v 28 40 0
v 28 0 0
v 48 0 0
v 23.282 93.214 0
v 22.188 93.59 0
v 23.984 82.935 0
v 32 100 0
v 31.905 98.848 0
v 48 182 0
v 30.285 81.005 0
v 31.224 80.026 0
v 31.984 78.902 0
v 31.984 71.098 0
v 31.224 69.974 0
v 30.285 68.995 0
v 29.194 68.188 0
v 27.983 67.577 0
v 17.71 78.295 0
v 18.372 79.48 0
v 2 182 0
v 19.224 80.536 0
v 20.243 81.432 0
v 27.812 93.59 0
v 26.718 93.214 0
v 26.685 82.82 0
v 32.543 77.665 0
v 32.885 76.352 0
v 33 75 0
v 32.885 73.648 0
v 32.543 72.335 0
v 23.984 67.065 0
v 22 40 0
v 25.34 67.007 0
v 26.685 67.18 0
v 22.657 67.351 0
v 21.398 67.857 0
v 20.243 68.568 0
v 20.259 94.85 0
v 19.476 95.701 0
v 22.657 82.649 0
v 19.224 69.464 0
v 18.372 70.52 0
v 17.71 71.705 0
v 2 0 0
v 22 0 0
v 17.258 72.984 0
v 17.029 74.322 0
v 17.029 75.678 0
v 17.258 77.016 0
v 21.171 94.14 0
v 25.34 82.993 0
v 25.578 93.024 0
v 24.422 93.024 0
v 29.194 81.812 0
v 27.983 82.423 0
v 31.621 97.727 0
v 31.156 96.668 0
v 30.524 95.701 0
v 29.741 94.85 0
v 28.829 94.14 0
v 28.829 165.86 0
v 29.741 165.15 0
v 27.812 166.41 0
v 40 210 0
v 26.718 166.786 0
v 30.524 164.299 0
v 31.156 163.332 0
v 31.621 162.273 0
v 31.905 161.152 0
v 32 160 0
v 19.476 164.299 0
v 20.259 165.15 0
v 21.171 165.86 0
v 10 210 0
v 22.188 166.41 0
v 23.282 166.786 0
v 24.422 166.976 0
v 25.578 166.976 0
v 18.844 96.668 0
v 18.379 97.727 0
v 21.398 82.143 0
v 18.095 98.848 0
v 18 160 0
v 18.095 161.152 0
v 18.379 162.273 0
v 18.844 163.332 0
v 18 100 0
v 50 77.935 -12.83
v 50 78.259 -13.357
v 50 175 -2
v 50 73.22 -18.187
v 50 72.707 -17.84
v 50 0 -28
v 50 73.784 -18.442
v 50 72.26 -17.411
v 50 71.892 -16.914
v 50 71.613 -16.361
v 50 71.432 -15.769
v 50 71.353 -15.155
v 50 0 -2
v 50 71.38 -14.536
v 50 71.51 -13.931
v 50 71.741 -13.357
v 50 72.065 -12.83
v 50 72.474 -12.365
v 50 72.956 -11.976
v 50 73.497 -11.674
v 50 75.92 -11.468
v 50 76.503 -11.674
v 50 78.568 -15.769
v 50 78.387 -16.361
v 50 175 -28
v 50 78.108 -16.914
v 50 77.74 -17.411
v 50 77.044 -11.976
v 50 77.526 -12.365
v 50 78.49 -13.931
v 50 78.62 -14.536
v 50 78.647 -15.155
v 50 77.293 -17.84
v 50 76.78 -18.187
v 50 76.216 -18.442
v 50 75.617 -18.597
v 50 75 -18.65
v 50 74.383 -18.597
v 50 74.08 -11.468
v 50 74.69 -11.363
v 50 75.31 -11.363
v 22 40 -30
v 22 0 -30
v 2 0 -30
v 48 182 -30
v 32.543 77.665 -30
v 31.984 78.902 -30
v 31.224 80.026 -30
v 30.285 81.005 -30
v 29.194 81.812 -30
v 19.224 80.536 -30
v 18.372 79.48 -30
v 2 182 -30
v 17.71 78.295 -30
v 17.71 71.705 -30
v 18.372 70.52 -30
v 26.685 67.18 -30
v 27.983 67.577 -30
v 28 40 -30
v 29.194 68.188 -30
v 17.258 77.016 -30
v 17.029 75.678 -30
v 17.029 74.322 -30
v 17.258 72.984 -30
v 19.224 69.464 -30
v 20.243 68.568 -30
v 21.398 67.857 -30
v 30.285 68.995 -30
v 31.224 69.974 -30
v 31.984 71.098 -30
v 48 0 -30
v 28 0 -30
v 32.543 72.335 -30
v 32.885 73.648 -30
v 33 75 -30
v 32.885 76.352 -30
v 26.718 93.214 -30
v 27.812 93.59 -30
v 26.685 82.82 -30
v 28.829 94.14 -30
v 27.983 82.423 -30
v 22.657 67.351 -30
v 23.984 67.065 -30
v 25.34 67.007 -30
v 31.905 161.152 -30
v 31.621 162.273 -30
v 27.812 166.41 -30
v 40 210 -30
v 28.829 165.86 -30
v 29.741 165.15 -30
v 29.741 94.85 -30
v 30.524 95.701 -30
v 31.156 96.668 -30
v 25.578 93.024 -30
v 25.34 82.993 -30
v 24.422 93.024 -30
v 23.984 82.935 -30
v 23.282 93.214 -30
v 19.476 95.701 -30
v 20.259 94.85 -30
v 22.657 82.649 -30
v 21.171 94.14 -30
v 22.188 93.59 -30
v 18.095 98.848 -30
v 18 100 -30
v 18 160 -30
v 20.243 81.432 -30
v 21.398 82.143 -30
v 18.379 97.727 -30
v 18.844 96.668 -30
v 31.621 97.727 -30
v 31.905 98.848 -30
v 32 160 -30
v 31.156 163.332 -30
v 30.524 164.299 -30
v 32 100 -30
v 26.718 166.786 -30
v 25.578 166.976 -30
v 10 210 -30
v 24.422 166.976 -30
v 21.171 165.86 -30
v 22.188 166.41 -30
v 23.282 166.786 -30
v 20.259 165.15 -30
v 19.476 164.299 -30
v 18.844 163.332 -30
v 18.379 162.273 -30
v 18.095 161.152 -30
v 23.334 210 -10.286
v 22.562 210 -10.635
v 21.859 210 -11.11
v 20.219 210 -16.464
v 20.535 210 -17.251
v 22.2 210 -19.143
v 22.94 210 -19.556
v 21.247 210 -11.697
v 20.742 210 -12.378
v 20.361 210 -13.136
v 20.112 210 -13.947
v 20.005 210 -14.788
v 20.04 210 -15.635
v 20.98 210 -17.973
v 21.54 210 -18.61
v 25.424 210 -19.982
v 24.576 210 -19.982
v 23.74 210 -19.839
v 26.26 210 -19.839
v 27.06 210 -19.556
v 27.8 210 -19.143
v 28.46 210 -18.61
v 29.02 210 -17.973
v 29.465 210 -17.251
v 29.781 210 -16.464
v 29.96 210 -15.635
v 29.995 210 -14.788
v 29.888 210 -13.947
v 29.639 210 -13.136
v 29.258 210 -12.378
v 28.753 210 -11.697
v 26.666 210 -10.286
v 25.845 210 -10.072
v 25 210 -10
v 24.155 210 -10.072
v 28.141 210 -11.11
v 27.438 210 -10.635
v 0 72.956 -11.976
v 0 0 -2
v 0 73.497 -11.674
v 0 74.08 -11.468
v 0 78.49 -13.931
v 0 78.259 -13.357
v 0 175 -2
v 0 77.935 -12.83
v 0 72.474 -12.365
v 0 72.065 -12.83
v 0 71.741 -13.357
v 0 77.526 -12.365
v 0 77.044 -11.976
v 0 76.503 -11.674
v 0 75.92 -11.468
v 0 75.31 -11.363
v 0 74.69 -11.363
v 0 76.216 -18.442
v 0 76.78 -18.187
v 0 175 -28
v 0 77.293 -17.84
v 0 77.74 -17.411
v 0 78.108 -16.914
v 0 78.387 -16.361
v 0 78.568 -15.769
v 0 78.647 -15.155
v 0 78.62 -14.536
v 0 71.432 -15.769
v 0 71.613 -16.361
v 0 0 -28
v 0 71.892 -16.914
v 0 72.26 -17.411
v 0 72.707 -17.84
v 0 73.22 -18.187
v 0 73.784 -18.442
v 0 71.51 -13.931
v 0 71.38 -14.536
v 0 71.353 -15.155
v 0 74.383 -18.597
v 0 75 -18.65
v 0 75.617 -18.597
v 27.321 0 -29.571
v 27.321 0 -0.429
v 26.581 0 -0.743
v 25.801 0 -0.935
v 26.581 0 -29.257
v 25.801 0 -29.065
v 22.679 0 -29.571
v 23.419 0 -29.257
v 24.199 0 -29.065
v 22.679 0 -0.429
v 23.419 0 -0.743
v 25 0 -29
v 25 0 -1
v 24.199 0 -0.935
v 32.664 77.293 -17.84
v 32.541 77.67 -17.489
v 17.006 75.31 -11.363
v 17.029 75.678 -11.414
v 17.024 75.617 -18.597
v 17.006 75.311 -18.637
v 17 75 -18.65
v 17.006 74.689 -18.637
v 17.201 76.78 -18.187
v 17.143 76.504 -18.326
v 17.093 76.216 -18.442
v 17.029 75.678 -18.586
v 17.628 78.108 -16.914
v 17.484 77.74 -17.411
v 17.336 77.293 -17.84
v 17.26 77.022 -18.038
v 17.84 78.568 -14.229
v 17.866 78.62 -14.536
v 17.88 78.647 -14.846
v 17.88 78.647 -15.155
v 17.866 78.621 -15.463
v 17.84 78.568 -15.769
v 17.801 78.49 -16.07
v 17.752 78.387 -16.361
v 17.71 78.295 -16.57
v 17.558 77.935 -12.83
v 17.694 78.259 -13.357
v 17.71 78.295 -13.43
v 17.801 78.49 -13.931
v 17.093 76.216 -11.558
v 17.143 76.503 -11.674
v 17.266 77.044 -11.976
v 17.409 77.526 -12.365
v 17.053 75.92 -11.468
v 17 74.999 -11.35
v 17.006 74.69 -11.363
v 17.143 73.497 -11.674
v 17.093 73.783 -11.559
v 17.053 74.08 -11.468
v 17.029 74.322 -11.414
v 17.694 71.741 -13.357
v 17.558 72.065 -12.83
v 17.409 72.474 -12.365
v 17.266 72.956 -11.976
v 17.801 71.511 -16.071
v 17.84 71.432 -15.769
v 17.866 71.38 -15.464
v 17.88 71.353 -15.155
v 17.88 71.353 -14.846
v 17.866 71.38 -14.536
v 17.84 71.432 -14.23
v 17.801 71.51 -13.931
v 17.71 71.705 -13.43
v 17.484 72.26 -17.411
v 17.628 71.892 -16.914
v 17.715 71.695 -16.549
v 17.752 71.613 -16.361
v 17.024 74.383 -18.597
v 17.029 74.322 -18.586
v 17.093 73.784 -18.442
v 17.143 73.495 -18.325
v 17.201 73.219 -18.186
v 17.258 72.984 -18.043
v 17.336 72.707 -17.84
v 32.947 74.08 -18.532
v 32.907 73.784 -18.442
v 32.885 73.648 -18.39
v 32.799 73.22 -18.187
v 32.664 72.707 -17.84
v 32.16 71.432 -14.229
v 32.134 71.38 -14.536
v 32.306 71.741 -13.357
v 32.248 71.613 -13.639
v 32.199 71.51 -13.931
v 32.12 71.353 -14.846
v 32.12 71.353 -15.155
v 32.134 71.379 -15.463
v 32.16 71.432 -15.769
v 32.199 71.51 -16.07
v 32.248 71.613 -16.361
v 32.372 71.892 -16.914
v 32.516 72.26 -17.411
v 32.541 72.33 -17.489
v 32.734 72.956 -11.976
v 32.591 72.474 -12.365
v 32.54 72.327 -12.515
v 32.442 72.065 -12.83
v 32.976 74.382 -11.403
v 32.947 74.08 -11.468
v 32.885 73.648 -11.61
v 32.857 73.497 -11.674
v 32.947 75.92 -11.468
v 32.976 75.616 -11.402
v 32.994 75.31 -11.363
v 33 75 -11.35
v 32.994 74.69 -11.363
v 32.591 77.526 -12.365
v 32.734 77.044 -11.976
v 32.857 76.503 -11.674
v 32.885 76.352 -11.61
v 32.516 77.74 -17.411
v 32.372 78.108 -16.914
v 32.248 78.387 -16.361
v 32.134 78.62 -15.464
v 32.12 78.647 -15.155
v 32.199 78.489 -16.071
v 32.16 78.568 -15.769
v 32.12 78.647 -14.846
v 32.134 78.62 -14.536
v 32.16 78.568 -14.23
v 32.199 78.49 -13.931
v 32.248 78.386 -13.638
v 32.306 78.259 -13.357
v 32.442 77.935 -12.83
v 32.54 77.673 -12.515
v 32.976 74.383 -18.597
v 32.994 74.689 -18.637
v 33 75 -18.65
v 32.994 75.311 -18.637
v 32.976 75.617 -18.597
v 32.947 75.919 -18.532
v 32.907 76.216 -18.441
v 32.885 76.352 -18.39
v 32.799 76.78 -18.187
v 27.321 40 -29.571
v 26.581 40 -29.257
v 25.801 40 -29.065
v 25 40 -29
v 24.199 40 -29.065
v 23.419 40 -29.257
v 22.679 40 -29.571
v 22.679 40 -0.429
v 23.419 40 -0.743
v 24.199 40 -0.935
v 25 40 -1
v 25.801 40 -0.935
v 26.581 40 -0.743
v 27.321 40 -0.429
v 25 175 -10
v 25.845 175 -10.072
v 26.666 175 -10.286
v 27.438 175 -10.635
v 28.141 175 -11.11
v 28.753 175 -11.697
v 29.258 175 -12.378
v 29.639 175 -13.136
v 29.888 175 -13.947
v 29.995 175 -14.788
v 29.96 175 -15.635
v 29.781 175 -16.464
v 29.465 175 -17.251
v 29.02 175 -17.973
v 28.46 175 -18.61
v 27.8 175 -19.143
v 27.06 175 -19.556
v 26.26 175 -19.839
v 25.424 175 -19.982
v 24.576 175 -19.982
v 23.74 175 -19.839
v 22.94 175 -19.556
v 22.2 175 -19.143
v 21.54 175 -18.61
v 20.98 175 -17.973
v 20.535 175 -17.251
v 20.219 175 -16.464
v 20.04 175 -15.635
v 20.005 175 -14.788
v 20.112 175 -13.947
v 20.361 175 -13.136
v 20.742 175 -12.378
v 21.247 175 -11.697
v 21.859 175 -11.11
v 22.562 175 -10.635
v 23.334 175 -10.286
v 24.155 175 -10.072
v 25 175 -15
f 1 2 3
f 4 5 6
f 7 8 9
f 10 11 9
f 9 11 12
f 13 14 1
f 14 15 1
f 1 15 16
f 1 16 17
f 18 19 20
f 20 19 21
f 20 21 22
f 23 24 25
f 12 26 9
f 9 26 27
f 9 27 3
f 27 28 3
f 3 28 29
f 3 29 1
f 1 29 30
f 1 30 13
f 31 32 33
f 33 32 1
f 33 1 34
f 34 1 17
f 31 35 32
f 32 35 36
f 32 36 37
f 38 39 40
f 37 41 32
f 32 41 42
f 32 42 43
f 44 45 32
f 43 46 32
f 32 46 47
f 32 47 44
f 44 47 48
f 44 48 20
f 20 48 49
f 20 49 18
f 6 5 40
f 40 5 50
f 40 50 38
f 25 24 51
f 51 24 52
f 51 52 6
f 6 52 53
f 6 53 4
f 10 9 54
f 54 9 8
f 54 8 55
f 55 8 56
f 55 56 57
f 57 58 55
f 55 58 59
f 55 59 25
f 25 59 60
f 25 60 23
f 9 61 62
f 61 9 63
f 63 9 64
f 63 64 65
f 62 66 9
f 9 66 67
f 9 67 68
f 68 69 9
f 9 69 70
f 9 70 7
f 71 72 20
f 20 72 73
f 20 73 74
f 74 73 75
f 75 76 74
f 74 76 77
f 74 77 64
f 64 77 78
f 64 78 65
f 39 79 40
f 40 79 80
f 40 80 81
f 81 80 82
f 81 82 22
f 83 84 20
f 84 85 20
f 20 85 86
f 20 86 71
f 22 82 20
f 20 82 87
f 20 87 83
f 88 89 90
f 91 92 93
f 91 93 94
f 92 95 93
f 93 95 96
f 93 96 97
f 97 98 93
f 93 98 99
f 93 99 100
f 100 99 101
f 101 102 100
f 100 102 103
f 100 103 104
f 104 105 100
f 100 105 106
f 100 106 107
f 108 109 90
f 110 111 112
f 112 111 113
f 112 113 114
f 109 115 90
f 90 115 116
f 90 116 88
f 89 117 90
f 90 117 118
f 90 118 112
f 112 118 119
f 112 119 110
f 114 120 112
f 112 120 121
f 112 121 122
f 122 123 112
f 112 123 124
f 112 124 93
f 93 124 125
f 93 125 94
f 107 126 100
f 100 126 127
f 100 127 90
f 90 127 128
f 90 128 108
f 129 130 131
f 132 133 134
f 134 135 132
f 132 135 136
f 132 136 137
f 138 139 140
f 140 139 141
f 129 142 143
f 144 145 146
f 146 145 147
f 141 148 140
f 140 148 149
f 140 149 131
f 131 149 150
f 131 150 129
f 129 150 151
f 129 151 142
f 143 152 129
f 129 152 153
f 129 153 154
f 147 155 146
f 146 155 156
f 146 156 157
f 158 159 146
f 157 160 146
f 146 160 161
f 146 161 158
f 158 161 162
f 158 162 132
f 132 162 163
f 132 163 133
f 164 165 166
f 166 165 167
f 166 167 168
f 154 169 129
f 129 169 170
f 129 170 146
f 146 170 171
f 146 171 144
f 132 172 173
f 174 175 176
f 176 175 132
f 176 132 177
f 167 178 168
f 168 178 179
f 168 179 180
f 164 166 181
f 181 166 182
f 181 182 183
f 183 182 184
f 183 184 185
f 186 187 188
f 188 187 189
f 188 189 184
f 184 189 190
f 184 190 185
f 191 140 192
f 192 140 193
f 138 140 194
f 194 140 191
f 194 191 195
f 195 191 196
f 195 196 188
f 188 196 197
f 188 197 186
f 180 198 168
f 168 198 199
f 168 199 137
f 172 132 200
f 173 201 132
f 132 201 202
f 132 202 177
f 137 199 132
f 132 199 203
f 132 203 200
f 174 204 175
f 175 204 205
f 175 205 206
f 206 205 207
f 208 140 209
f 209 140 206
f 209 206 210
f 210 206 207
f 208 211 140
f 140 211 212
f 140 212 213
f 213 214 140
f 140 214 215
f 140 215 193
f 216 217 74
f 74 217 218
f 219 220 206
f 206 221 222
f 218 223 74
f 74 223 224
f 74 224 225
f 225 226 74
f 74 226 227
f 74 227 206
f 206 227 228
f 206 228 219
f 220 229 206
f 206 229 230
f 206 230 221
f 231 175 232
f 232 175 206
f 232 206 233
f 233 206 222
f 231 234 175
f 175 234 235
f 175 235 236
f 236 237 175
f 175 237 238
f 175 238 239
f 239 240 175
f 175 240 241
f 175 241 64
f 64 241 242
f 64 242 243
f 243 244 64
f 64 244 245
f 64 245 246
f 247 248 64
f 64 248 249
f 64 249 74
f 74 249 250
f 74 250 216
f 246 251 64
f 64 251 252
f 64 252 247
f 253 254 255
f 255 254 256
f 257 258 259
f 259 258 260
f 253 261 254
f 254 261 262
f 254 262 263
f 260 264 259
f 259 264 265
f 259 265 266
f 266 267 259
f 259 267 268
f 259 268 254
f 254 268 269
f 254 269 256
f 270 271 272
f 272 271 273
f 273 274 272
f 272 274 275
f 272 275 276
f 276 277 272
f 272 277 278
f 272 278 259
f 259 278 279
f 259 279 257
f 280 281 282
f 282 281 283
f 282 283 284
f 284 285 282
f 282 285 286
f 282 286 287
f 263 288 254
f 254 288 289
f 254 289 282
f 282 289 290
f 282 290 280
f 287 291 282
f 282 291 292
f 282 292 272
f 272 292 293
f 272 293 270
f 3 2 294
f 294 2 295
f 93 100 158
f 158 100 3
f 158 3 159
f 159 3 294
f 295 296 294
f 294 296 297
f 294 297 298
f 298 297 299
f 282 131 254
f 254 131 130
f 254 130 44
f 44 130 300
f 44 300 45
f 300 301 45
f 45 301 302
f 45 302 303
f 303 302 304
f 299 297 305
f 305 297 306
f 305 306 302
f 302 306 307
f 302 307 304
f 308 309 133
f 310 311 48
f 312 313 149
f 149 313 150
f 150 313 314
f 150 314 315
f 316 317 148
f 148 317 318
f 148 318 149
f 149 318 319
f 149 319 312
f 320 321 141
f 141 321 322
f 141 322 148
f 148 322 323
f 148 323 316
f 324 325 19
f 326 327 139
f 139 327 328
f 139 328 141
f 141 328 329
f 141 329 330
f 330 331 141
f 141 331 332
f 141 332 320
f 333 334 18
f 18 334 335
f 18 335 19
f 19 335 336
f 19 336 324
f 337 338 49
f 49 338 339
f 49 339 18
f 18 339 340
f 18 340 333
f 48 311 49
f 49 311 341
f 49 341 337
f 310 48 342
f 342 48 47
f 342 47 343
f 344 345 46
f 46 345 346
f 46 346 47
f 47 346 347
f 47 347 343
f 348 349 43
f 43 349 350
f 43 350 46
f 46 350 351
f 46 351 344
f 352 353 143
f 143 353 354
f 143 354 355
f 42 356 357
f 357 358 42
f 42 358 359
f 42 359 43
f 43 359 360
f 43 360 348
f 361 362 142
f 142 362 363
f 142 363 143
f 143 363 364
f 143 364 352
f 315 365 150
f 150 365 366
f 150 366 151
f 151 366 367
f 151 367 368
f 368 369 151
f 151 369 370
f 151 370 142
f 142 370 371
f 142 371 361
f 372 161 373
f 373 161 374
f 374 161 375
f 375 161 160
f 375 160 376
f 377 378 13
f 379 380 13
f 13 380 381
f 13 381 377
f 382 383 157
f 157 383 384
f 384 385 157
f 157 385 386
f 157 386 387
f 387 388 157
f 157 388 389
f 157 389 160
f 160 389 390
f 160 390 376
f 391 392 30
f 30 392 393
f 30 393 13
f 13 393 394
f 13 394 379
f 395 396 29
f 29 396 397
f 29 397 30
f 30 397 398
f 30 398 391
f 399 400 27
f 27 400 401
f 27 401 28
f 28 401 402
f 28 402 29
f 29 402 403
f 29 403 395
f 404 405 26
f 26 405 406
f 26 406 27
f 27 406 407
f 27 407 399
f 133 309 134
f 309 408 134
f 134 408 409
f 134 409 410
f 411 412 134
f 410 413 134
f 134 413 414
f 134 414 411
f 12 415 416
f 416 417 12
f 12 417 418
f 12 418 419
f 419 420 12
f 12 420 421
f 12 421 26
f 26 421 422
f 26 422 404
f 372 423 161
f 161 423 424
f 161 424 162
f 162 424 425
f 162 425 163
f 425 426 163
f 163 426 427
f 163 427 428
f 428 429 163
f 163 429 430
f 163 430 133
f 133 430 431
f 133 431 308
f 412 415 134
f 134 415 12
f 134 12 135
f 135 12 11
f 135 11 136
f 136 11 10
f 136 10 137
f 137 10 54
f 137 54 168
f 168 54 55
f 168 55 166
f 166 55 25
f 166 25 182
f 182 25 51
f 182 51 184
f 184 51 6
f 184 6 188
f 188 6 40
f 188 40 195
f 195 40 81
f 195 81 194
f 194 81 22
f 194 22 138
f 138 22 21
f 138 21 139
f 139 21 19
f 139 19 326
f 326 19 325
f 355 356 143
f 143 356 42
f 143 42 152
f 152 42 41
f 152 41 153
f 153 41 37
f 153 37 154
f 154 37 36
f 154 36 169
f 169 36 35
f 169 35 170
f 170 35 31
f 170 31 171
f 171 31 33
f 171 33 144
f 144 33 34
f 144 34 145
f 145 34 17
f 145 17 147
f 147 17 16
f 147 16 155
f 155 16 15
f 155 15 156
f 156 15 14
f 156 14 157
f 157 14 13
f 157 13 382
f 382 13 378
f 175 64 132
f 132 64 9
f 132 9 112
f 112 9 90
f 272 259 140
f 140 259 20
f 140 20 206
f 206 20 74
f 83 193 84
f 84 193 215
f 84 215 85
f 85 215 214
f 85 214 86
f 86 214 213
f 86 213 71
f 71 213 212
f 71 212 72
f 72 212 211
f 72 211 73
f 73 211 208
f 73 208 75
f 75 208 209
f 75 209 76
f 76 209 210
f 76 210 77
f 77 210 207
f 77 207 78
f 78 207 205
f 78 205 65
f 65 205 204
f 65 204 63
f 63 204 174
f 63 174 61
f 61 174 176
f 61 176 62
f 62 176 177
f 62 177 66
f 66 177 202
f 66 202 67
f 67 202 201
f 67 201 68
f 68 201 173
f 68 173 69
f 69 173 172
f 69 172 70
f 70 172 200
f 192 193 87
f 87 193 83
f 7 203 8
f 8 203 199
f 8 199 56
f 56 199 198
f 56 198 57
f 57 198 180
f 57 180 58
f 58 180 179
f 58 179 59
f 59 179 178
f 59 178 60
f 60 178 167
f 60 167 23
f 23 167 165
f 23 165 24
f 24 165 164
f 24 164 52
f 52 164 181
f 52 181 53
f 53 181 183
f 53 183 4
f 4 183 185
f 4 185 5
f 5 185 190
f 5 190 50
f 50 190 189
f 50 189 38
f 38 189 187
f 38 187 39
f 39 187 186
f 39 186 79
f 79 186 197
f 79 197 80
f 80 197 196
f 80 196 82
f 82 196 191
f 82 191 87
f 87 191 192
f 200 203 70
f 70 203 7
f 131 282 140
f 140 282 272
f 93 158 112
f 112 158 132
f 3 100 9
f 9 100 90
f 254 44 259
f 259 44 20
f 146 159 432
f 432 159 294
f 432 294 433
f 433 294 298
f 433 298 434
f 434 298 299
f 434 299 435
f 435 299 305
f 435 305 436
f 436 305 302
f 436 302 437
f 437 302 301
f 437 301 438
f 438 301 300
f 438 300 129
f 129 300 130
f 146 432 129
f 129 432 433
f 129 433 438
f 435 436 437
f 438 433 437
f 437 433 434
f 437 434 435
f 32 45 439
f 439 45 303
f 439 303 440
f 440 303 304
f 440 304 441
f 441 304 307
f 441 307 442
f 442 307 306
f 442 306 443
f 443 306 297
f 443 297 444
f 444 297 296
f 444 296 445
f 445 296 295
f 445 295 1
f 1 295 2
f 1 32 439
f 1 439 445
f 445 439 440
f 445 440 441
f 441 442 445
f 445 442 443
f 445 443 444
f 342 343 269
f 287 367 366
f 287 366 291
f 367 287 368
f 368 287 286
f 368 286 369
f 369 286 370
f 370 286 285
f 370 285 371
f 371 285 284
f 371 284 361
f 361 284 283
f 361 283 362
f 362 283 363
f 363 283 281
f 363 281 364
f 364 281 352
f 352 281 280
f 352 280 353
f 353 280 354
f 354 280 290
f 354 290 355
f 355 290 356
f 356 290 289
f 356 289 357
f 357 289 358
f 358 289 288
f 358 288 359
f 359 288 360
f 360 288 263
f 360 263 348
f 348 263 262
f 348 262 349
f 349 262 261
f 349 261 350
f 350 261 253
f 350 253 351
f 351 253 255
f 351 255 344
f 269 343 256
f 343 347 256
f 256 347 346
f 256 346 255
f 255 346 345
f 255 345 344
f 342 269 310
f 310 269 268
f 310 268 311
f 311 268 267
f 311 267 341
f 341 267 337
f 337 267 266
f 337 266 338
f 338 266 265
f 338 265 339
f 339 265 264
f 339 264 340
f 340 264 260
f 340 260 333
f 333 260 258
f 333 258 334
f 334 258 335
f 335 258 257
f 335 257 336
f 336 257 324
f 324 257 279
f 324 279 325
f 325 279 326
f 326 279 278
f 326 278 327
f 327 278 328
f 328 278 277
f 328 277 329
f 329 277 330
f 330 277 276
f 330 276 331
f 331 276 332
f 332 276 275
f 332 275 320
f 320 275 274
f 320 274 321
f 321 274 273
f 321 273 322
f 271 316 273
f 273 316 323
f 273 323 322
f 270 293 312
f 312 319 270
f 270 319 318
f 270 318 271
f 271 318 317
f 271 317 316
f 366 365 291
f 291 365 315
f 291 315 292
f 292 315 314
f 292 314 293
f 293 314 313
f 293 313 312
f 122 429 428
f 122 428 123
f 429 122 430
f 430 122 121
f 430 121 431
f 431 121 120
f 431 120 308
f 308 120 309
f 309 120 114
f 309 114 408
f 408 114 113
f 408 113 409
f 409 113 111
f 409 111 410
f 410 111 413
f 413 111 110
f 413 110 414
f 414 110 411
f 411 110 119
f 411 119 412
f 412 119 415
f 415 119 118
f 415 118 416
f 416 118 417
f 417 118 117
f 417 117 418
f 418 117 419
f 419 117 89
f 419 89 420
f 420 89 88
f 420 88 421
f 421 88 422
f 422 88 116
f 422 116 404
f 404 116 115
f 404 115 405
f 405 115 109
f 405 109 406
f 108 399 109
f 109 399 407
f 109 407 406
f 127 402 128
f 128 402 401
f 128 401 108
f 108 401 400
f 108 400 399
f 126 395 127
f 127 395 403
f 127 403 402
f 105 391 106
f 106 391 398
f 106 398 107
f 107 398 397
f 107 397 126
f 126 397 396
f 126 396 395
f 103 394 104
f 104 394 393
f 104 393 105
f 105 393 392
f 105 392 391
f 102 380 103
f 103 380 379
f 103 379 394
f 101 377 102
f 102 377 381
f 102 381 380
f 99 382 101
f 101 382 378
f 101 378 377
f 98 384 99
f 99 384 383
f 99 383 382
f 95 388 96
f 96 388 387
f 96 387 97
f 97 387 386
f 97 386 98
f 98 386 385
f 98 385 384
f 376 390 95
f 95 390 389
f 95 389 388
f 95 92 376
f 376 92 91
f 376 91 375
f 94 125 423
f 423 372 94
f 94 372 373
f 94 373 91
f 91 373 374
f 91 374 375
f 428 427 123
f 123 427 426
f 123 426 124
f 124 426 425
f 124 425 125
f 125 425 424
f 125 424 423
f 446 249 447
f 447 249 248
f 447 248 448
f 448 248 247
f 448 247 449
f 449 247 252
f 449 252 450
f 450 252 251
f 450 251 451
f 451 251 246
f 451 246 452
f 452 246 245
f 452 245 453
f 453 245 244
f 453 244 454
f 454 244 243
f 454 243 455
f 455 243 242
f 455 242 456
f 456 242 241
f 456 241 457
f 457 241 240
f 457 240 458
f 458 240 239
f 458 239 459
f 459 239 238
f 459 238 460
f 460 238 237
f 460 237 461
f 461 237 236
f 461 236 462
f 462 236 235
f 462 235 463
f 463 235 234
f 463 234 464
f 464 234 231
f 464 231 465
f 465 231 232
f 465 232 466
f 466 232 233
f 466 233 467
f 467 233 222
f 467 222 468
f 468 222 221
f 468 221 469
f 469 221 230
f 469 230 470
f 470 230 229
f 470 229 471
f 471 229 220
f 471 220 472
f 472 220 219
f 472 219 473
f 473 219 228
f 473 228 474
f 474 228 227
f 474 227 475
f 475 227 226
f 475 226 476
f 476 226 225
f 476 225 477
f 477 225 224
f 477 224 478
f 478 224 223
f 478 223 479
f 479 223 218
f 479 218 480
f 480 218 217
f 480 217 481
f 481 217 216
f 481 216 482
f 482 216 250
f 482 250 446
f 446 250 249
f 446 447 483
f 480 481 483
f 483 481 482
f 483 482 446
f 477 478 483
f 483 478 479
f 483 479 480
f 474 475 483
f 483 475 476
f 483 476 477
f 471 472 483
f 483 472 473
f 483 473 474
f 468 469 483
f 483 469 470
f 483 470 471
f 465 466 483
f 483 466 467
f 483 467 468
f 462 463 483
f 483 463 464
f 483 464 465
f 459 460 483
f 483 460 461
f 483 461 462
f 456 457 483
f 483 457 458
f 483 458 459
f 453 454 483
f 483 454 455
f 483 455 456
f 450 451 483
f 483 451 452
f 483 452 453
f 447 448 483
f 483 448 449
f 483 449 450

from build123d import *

# Parameters (mm, degrees)
SKETCH2_W           = 50
SKETCH2_H           = 30
BOSS_EXTRUDE2_DEPTH = 210
CUT_EXTRUDE2_REACH  = 32
SKETCH3_R           = 8
CUT_EXTRUDE5_REACH  = 32
CUT_EXTRUDE8_REACH  = 32
CHAMFER3_SIZE       = 2
CUT_EXTRUDE10_DEPTH = 40
SKETCH16_R          = 3.65
CUT_EXTRUDE11_DEPTH = 50
SKETCH20_R          = 5
CUT_EXTRUDE13_DEPTH = 35


with BuildPart() as part:
    # Sketch2 → Boss-Extrude2 (new body)
    with BuildSketch(Plane(origin=(0, 0, 0), x_dir=(1, 0, 0), z_dir=(0, 1, 0))):
        with Locations((25, 15)):
            Rectangle(SKETCH2_W, SKETCH2_H)
    extrude(amount=BOSS_EXTRUDE2_DEPTH)

    # Sketch3 → Cut-Extrude2 (cut, up to next)
    with BuildSketch(Plane.XY, mode=Mode.PRIVATE) as cut_extrude2_sk1:
        with Locations((25, 75)):
            Circle(SKETCH3_R)
    cut_extrude2_tool1 = extrude(cut_extrude2_sk1.sketch, amount=-CUT_EXTRUDE2_REACH, mode=Mode.PRIVATE) & part.part
    add(cut_extrude2_tool1.solids().sort_by_distance((25, 75, 0))[0], mode=Mode.SUBTRACT)

    # Sketch7 → Cut-Extrude5 (cut, up to next)
    with BuildSketch(Plane.XY, mode=Mode.PRIVATE) as cut_extrude5_sk1:
        Polygon((0, 175), (10, 210), (0, 210), align=None)
    cut_extrude5_tool1 = extrude(cut_extrude5_sk1.sketch, amount=-CUT_EXTRUDE5_REACH, mode=Mode.PRIVATE) & part.part
    add(cut_extrude5_tool1.solids().sort_by_distance((3.333333, 198.333333, 0))[0], mode=Mode.SUBTRACT)
    # Sketch7 → Cut-Extrude5 (cut, up to next)
    with BuildSketch(Plane.XY, mode=Mode.PRIVATE) as cut_extrude5_sk2:
        Polygon((50, 210), (50, 175), (40, 210), align=None)
    cut_extrude5_tool2 = extrude(cut_extrude5_sk2.sketch, amount=-CUT_EXTRUDE5_REACH, mode=Mode.PRIVATE) & part.part
    add(cut_extrude5_tool2.solids().sort_by_distance((46.666667, 198.333333, 0))[0], mode=Mode.SUBTRACT)

    # Sketch11 → Cut-Extrude8 (cut, up to next)
    with BuildSketch(Plane(origin=(0, 0, -30), x_dir=(-1, 0, 0), z_dir=(0, 0, -1)), mode=Mode.PRIVATE) as cut_extrude8_sk1:
        with BuildLine():
            Line((-18, 160), (-18, 100))
            ThreePointArc((-18, 100), (-25, 93), (-32, 100))
            Line((-32, 100), (-32, 160))
            ThreePointArc((-32, 160), (-25, 167), (-18, 160))
        make_face()
    cut_extrude8_tool1 = extrude(cut_extrude8_sk1.sketch, amount=-CUT_EXTRUDE8_REACH, mode=Mode.PRIVATE) & part.part
    add(cut_extrude8_tool1.solids().sort_by_distance((25, 130, -30))[0], mode=Mode.SUBTRACT)

    # Chamfer3
    chamfer3_edges = [part.edges().sort_by_distance(p)[0] for p in [
        (0, 87.5, -30),
        (50, 87.5, -30),
        (50, 87.5, 0),
        (0, 87.5, 0),
    ]]
    chamfer(chamfer3_edges, length=CHAMFER3_SIZE)

    # Sketch15 → Cut-Extrude10 (cut)
    with BuildSketch(Plane.XZ):
        with BuildLine():
            Line((22, 0), (28, 0))
            ThreePointArc((28, 0), (25, -1), (22, 0))
        make_face()
        with BuildLine():
            Line((22, -30), (28, -30))
            ThreePointArc((28, -30), (25, -29), (22, -30))
        make_face()
    extrude(amount=-CUT_EXTRUDE10_DEPTH, mode=Mode.SUBTRACT)

    # Sketch16 → Cut-Extrude11 (cut)
    with BuildSketch(Plane(origin=(50, 0, 0), x_dir=(0, 0, -1), z_dir=(1, 0, 0))):
        with Locations((15, 75)):
            Circle(SKETCH16_R)
    extrude(amount=-CUT_EXTRUDE11_DEPTH, mode=Mode.SUBTRACT)

    # Sketch20 → Cut-Extrude13 (cut)
    with BuildSketch(Plane(origin=(0, 210, 0), x_dir=(1, 0, 0), z_dir=(0, 1, 0))):
        with Locations((25, 15)):
            Circle(SKETCH20_R)
    extrude(amount=-CUT_EXTRUDE13_DEPTH, mode=Mode.SUBTRACT)


solid = part.part
